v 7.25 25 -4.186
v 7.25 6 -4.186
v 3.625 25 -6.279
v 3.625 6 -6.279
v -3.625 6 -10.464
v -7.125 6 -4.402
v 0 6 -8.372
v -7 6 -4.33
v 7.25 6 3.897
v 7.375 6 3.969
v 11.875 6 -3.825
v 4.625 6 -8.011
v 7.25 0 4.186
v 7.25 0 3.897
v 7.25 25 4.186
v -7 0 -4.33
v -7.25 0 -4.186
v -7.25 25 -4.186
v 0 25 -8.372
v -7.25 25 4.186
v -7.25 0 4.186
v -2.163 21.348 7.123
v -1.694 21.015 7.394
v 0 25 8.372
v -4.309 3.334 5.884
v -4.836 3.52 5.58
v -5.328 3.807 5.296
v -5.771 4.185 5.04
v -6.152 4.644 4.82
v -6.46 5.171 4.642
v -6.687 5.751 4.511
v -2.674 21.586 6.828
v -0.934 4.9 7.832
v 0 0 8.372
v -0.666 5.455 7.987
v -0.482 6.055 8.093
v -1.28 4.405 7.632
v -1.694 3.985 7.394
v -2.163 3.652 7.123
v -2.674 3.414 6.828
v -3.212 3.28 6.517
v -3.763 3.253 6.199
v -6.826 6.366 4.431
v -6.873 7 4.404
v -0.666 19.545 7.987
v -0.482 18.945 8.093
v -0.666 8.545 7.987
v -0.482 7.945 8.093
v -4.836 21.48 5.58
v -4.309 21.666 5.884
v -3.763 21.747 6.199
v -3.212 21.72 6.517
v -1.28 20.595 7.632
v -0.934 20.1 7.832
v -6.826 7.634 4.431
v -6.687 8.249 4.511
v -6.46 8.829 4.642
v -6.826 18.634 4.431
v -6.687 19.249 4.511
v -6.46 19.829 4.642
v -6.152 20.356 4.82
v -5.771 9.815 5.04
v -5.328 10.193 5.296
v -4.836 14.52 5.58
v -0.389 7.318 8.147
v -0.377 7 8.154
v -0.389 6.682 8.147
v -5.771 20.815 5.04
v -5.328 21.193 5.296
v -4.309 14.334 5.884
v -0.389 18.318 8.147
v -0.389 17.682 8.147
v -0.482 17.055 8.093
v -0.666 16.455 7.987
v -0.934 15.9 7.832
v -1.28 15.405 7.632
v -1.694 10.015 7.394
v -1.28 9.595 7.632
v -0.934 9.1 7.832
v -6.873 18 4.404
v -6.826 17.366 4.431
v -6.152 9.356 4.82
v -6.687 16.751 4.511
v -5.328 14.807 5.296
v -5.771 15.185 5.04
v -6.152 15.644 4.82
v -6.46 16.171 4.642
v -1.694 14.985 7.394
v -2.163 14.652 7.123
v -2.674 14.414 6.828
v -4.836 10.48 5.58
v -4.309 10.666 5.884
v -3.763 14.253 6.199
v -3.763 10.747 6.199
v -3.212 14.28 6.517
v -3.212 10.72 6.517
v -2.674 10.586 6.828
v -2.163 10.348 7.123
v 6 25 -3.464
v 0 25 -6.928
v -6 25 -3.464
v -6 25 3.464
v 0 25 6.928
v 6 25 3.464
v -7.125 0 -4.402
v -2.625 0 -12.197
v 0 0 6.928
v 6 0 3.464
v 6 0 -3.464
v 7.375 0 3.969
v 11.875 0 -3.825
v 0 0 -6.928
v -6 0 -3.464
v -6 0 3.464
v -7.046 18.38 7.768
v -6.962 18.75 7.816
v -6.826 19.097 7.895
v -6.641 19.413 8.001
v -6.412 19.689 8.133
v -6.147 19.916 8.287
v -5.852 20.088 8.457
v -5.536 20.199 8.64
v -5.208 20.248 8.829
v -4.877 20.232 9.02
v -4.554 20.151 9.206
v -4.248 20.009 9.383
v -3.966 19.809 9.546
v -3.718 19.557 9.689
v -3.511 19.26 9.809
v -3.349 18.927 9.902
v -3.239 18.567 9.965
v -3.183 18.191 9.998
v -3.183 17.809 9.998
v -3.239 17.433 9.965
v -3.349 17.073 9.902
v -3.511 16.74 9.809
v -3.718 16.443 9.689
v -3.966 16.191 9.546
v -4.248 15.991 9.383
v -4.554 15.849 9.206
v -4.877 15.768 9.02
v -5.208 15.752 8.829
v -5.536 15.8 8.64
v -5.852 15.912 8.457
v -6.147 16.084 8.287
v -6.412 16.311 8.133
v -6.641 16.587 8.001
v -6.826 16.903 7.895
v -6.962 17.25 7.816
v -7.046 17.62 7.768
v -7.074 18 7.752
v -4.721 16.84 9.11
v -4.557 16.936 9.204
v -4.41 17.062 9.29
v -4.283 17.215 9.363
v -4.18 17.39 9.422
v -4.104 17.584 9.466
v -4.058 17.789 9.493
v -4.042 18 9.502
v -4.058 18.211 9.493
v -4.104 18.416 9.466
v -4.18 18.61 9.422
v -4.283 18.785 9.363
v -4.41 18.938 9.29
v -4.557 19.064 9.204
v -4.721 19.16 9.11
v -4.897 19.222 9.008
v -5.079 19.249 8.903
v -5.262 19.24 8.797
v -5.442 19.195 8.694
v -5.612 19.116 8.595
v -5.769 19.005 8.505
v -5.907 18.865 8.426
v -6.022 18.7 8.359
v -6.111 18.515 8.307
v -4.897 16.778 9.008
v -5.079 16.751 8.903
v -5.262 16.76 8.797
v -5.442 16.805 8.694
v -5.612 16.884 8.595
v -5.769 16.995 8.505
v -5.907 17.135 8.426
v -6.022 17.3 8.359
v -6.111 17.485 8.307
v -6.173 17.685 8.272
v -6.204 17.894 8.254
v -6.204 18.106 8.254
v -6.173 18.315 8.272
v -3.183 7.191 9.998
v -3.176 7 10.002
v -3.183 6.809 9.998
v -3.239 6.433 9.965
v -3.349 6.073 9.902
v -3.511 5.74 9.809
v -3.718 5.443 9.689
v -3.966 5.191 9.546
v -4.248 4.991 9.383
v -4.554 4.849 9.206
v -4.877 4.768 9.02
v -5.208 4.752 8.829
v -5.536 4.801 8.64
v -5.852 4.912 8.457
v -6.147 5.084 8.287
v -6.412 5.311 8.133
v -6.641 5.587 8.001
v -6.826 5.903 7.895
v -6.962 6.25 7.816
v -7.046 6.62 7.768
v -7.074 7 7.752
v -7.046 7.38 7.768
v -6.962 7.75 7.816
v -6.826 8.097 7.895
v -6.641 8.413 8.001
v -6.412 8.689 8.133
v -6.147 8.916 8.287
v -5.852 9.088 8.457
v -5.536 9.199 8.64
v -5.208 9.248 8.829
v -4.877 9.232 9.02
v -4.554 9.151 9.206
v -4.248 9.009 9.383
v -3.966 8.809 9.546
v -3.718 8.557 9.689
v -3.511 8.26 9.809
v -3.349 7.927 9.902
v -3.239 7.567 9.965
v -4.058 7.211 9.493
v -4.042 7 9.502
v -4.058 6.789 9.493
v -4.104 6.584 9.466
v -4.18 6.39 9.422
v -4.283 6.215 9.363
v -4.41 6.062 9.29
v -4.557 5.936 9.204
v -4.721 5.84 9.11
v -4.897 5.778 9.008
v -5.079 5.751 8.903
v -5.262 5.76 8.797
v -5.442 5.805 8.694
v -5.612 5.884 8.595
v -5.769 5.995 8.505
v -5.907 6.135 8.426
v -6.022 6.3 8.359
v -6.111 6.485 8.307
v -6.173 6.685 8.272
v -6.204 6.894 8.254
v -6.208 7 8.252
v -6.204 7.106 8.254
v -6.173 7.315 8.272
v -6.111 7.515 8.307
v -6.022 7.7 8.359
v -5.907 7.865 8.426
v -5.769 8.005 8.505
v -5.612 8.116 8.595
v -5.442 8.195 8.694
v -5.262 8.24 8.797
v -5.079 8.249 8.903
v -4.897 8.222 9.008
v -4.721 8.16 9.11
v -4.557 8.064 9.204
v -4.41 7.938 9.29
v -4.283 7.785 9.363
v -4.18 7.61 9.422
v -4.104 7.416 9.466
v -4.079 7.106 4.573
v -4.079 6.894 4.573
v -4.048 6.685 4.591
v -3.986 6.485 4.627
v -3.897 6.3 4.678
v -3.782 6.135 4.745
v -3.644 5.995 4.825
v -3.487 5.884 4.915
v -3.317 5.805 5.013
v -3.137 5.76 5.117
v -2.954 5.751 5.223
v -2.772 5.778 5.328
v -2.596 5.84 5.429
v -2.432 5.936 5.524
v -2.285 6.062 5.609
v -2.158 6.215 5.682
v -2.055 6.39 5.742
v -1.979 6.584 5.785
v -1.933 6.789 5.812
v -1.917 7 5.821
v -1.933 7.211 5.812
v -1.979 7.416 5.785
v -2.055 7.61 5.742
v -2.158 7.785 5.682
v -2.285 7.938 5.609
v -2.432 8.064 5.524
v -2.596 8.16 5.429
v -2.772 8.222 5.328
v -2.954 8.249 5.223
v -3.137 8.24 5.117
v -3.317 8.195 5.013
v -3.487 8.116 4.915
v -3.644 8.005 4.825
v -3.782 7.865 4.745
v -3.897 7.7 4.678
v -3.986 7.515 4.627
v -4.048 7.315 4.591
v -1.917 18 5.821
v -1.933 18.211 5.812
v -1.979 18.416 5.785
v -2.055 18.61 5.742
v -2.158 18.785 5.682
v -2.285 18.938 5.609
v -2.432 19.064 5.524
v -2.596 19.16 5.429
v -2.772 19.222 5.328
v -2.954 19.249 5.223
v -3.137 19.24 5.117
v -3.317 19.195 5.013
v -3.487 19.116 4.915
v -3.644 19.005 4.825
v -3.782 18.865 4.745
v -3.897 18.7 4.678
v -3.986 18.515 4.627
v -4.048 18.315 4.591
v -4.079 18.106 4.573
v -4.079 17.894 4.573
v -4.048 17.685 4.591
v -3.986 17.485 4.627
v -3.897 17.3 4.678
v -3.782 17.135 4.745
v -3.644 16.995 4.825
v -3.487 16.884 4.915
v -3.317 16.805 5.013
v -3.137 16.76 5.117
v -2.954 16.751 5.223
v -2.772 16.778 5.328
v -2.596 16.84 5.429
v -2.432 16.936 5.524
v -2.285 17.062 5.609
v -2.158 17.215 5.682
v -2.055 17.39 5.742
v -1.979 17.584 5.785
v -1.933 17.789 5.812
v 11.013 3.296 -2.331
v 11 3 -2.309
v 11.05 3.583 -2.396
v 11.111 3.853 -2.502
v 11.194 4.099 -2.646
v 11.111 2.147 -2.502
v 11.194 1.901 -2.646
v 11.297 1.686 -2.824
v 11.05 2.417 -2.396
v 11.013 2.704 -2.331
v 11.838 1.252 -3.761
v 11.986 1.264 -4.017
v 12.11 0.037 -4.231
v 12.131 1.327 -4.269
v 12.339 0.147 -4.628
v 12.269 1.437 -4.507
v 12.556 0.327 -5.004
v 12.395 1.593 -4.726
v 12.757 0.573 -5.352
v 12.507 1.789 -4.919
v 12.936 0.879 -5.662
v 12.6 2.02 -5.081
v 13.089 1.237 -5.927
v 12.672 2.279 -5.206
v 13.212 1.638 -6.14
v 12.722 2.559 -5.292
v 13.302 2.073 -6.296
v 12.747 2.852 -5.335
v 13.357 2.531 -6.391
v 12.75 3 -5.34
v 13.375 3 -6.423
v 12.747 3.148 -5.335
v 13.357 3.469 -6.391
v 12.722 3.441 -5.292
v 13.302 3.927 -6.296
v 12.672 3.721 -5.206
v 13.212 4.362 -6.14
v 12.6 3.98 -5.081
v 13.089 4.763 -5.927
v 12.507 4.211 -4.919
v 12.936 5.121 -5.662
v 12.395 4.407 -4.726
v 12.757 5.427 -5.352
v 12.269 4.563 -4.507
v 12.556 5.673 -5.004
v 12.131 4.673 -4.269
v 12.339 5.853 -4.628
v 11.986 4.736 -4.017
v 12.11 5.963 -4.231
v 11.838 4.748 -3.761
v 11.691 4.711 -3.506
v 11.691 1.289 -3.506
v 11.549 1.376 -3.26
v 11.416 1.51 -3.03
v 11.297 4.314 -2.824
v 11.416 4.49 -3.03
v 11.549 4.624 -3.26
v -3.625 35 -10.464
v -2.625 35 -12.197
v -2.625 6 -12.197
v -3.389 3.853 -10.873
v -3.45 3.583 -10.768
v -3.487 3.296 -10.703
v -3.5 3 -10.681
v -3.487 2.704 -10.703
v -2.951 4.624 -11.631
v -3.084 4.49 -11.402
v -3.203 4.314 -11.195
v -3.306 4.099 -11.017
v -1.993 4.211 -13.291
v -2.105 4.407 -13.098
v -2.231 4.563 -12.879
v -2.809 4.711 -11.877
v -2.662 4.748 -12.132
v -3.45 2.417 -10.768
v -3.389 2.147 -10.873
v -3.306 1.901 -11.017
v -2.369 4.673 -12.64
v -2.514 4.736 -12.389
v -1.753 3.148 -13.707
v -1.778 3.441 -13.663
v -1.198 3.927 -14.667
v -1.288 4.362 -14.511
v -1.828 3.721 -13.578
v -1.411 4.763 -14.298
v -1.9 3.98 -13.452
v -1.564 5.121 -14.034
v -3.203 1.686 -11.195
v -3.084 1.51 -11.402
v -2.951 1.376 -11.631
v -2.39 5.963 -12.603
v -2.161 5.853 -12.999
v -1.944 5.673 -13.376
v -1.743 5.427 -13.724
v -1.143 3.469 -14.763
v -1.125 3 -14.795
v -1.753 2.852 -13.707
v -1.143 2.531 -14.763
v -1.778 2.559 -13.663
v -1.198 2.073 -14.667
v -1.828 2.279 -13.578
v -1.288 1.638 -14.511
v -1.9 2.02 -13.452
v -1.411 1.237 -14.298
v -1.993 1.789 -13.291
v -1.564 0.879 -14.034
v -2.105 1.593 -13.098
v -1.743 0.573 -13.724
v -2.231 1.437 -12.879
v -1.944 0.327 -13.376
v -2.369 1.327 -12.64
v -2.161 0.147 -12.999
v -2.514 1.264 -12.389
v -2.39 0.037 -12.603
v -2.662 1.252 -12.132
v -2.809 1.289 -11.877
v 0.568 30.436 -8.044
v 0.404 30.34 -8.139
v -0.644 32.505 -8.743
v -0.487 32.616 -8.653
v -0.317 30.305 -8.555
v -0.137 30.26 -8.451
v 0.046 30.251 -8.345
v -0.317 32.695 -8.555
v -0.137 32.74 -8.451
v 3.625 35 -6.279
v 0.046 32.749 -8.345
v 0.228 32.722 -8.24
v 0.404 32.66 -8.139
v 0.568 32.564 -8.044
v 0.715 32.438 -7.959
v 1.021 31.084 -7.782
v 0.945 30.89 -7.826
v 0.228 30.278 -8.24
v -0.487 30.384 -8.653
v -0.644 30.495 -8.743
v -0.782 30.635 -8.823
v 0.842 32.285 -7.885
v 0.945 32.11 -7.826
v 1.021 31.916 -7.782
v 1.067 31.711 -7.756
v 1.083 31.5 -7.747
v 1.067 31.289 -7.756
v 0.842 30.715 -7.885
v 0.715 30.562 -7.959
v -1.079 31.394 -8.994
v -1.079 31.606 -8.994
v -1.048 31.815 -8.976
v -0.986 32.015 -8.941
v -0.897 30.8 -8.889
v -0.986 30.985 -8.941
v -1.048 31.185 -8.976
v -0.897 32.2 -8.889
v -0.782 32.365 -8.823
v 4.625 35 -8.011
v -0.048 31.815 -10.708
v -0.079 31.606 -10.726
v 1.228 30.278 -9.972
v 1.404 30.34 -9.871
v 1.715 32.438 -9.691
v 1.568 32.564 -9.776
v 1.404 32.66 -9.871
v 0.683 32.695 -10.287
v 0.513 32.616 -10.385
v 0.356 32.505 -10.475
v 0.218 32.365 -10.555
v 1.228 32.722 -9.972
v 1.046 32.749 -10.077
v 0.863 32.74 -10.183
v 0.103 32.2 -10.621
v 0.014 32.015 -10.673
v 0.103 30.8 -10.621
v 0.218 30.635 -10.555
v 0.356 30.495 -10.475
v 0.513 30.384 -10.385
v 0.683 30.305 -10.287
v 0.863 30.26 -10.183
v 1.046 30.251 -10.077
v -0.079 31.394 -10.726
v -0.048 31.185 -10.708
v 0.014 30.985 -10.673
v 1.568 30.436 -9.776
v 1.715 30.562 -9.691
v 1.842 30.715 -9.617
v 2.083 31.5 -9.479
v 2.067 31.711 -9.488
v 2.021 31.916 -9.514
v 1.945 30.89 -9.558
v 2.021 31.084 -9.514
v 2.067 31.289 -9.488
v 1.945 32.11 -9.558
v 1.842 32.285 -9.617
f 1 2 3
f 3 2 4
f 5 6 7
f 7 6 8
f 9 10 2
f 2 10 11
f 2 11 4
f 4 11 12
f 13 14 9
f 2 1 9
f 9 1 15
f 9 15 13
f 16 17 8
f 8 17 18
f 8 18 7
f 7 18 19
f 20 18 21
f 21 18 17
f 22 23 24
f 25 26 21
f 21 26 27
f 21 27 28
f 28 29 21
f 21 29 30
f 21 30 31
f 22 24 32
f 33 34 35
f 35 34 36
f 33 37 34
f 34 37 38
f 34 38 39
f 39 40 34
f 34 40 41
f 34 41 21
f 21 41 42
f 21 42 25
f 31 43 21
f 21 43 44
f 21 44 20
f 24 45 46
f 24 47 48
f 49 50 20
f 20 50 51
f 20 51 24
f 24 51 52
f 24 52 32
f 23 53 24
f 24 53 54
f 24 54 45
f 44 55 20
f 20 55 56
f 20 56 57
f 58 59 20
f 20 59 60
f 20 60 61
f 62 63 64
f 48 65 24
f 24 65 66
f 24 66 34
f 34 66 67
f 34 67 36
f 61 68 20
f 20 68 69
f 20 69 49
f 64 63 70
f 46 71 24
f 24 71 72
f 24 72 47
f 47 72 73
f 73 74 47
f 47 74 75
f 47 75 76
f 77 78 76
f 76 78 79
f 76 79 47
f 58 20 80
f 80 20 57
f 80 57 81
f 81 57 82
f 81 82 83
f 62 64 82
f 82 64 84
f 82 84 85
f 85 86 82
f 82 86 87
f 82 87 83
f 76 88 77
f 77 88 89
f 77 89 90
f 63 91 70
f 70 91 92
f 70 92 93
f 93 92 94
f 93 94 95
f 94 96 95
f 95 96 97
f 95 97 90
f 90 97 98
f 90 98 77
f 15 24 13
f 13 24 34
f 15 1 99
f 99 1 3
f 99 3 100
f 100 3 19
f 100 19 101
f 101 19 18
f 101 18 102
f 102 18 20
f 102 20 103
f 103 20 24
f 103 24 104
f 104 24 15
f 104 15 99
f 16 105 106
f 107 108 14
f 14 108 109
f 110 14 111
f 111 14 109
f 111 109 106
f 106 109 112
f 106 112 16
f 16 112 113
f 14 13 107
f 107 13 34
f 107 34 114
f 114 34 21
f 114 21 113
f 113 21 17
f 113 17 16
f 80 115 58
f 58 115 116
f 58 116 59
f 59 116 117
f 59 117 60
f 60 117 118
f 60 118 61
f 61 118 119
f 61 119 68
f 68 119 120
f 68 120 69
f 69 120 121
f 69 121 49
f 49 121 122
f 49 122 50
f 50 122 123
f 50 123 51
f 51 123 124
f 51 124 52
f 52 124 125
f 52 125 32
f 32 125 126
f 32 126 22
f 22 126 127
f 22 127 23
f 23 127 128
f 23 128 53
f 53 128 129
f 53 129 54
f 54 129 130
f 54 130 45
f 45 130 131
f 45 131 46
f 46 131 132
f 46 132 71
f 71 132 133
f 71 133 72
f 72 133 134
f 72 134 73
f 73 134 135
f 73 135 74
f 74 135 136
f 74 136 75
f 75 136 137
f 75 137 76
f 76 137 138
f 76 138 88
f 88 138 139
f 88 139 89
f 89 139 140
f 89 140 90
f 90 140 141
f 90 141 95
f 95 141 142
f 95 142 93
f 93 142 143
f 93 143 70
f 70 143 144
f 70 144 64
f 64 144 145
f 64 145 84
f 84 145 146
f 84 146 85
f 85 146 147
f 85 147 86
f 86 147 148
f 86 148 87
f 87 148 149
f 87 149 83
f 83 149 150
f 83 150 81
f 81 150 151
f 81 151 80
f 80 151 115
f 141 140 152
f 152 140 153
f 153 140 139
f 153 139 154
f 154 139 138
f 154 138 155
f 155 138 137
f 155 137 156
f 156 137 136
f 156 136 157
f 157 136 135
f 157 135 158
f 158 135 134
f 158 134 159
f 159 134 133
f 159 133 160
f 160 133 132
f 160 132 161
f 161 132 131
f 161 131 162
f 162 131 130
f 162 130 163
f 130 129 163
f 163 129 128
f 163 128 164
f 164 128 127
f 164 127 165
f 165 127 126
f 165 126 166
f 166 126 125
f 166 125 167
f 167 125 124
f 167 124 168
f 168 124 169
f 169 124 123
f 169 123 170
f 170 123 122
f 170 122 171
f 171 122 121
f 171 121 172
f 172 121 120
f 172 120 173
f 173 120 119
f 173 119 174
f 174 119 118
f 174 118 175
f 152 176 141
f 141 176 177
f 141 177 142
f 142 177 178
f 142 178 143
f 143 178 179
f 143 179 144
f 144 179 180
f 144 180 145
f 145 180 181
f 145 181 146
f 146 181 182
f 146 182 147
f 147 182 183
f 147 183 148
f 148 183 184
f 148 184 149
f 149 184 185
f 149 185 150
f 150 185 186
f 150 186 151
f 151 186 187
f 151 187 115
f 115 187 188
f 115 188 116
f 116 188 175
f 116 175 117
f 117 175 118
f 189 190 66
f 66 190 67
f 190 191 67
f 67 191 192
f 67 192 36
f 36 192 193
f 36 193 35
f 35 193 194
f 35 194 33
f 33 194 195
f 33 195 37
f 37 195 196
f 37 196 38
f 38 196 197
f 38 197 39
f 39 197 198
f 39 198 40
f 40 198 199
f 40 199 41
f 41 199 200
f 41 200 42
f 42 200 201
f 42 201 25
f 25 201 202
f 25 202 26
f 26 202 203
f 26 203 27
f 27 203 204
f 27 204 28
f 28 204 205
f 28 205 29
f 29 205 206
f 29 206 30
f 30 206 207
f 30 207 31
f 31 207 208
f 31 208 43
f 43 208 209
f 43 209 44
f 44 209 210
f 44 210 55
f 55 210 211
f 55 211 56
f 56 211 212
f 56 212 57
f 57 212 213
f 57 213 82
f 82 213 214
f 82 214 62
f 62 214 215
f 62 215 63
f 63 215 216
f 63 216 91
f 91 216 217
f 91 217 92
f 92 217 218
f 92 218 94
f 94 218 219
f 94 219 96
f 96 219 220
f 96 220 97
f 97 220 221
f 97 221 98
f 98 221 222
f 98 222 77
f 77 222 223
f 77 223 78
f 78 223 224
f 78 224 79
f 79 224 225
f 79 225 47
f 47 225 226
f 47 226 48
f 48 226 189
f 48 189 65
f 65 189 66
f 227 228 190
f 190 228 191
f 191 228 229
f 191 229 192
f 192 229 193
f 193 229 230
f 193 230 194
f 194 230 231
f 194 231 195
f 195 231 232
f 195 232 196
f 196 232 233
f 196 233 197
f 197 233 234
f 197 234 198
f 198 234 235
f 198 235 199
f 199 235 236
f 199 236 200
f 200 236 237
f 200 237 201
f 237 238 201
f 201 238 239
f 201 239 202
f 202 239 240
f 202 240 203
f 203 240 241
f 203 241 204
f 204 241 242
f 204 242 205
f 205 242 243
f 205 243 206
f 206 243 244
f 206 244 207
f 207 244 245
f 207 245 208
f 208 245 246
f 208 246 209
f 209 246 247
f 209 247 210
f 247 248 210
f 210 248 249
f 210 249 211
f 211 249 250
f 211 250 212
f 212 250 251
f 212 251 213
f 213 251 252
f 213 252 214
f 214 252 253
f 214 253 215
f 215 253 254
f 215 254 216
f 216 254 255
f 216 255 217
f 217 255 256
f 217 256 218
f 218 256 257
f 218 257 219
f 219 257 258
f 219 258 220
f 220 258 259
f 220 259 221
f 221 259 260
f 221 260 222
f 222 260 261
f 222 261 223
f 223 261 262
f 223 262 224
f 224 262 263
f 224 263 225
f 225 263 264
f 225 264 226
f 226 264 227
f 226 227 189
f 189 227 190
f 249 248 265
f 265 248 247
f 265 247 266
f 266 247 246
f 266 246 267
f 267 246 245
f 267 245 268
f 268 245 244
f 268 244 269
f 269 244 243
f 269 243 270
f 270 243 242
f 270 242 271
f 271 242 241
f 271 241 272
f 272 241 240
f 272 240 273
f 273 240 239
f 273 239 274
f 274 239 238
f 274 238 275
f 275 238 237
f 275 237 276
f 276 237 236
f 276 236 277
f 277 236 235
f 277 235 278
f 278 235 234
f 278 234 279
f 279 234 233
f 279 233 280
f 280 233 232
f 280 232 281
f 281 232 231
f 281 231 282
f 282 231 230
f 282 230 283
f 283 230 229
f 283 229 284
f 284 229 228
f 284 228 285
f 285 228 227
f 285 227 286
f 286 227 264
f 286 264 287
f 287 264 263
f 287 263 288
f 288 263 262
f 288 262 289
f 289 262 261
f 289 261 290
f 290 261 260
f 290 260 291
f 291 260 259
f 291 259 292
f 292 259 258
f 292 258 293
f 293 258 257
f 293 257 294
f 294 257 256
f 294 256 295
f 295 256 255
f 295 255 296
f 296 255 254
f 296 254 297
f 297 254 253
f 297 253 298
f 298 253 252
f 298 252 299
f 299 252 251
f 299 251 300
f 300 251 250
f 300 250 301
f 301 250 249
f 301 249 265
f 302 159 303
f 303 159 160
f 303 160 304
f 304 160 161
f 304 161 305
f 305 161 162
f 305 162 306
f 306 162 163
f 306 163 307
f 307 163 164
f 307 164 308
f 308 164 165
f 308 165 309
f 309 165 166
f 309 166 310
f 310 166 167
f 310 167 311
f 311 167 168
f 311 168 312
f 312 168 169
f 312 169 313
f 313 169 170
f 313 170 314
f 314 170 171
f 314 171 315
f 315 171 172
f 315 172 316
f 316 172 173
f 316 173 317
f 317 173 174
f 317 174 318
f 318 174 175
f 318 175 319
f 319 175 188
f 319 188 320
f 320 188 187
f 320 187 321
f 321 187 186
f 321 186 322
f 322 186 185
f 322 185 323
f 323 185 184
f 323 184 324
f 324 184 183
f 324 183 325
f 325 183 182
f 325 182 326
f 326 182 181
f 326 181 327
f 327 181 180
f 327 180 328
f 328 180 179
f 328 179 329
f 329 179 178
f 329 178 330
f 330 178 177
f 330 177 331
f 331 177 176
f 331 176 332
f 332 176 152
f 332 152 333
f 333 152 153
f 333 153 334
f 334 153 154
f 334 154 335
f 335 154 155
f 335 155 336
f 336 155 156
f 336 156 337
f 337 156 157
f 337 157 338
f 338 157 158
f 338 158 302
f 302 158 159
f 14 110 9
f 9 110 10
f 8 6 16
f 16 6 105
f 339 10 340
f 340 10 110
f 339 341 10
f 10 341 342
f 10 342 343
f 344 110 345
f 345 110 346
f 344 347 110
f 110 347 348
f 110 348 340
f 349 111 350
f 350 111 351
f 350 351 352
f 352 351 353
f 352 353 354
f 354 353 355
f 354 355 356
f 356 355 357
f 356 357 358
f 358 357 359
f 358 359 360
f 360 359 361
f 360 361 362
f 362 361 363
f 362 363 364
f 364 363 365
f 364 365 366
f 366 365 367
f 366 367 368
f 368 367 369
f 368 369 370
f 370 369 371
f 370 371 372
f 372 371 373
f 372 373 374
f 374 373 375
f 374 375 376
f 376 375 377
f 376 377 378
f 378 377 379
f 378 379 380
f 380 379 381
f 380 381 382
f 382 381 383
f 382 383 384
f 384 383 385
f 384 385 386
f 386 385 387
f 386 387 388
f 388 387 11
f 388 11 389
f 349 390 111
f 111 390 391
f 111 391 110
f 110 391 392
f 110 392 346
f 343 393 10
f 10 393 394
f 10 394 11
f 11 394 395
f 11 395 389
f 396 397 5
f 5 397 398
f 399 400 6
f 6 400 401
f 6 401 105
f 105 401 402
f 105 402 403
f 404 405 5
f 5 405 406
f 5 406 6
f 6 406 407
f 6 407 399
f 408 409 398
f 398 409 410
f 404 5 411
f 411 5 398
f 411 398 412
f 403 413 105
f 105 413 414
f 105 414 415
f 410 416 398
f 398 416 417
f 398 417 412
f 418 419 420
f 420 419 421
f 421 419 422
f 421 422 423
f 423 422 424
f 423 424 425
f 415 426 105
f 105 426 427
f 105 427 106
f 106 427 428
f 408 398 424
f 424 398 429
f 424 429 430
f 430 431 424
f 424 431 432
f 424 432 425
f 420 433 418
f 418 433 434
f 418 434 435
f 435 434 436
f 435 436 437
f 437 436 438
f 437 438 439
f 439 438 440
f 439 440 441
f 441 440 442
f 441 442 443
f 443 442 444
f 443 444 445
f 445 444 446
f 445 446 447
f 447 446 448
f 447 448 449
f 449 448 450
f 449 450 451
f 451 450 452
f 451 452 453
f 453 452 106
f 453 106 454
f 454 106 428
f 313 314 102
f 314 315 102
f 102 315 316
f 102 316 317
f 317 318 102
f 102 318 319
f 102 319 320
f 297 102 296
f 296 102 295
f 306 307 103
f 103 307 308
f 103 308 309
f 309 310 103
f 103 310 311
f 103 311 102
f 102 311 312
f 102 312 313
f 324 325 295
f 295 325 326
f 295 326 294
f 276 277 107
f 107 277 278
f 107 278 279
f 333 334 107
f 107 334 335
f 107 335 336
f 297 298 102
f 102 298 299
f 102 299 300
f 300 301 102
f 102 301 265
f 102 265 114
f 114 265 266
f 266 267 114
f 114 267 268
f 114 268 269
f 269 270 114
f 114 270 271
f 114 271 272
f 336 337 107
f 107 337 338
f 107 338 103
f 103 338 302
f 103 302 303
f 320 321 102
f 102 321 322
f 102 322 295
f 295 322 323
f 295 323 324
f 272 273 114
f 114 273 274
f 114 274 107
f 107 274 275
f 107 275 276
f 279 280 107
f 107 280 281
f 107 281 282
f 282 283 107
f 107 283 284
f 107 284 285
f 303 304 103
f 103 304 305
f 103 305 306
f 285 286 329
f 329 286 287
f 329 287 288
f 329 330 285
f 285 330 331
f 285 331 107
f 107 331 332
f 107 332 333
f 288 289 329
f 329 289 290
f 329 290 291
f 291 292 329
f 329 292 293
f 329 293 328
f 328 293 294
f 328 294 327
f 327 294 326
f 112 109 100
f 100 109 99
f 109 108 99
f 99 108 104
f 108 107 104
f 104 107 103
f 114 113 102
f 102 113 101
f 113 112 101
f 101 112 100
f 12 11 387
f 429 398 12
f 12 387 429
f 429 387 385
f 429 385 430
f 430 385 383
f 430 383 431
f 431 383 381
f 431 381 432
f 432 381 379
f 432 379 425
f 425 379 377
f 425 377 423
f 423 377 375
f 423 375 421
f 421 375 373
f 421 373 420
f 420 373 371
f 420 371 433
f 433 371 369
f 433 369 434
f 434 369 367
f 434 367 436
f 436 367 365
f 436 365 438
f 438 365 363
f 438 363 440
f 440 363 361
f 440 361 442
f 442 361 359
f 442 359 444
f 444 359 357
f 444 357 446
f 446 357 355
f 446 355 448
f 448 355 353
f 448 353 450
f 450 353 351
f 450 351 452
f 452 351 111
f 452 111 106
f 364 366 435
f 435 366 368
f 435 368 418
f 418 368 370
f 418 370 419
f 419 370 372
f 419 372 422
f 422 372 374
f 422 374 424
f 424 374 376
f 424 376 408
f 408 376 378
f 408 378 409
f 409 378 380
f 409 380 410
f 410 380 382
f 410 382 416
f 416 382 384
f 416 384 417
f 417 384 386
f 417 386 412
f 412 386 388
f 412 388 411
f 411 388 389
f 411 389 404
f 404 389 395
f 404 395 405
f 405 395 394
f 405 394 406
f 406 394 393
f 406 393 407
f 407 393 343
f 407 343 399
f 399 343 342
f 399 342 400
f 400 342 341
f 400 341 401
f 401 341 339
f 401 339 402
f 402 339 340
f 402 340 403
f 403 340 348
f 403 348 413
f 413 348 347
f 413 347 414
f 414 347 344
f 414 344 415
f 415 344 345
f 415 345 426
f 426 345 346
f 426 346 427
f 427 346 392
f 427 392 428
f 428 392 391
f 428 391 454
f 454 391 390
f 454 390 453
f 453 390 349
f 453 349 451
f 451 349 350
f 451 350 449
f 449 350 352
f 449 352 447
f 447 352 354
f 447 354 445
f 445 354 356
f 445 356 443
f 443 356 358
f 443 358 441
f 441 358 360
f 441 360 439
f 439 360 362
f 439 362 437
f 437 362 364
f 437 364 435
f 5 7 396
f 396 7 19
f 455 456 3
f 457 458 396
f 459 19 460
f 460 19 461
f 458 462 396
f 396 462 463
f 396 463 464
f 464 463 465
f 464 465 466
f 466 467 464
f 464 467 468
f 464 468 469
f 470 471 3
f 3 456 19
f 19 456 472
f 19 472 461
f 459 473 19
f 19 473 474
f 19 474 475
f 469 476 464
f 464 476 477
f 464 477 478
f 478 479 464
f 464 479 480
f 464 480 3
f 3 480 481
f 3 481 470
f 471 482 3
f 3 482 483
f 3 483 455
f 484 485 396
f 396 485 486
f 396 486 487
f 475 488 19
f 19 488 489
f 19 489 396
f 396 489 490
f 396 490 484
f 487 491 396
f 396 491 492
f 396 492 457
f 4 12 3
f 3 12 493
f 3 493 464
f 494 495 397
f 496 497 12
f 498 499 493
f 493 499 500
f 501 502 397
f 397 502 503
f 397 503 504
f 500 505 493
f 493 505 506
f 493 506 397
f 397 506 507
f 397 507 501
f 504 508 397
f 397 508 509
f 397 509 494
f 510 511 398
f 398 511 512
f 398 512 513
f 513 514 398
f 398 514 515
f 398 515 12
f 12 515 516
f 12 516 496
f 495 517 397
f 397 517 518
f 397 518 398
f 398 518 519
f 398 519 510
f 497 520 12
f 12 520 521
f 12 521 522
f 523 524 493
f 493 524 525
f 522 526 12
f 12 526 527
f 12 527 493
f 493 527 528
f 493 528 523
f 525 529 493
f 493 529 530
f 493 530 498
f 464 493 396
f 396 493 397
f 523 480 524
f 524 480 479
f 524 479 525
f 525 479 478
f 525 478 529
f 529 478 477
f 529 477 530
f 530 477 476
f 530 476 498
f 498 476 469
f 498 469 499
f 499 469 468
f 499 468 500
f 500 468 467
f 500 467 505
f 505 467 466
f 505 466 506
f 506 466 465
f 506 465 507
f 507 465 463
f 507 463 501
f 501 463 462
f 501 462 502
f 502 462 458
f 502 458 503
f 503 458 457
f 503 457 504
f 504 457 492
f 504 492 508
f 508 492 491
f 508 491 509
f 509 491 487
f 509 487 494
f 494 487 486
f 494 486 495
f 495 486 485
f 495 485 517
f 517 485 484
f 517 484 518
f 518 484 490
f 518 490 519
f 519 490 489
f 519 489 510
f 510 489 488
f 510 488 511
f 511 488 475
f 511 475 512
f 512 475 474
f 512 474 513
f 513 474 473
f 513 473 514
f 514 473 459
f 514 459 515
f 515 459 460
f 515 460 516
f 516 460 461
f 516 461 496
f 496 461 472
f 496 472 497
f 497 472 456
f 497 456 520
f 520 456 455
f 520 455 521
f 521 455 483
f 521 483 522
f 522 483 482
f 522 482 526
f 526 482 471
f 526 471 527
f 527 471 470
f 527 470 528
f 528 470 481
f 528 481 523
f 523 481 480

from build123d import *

# Parameters (mm, degrees)
RESSALTO_EXTRUS_O1_DEPTH      = 25
ESBO_O3_R                     = 2.25
RESSALTO_EXTRUS_O2_DEPTH      = 3
ESBO_O6_R                     = 1.25
CORTE_EXTRUS_O2_DEPTH         = 10
RESSALTO_EXTRUS_O3_DEPTH      = 5
RESSALTO_EXTRUS_O3_DEPTH_BACK = 7
ESBO_O8_W                     = 16.743157806
ESBO_O8_H                     = 6
CORTE_EXTRUS_O1_DEPTH         = 32.980788504
FILETE2_R                     = 3
ESBO_O10_R                    = 1.75
CORTE_EXTRUS_O3_DEPTH         = 36.379050234
RESSALTO_EXTRUS_O4_DEPTH      = 29
ESBO_O12_R                    = 1.25
CORTE_EXTRUS_O4_DEPTH         = 41.103846452


with BuildPart() as part:
    # Esboço1 → Ressalto-extrusão1 (new body)
    with BuildSketch(Plane(origin=(0, 0, 0), x_dir=(1, 0, 0), z_dir=(0, 1, 0))):
        Polygon((7.25, 4.185789452), (0, 8.371578903), (-7.25, 4.185789452), (-7.25, -4.185789452), (0, -8.371578903), (7.25, -4.185789452), align=None)
    extrude(amount=RESSALTO_EXTRUS_O1_DEPTH)

    # Esboço3 → Ressalto-extrusão2 (add)
    with BuildSketch(Plane(origin=(-3.625, 0, 6.278684177), x_dir=(0.8660254037844387, 0, 0.4999999999999999), z_dir=(-0.49999999999999994, 0, 0.8660254037844388))):
        with Locations(Location((0, 7, 0), (0, 0, 180))):
            Circle(ESBO_O3_R)
        with Locations(Location((0, 18, 0), (0, 0, 180))):
            Circle(ESBO_O3_R)
    extrude(amount=RESSALTO_EXTRUS_O2_DEPTH)

    # Esboço4 → Revolução1 (revolve)
    with BuildSketch(Plane(origin=(0, 18, 0), x_dir=(1, 0, 0), z_dir=(0, 1, 0))):
        Polygon((-7.073557159, -7.751760389), (-6.872595264, -4.403684177), (-5.573557159, -5.153684177), align=None)
    revolve(axis=Axis((-2.565266445, 18, 4.443171818), (-0.5000000000000001, 0, 0.8660254037844386)))

    # Esboço5 → Revolução2 (revolve)
    with BuildSketch(Plane(origin=(0, 7, 0), x_dir=(-1, 0, 0), z_dir=(0, -1, 0)), mode=Mode.PRIVATE) as revolu_o2_sk:
        Polygon((7.073557159, -7.751760389), (5.573557159, -5.153684177), (6.872595264, -4.403684177), align=None)
    revolve(revolu_o2_sk.sketch.rotate(Axis((-5.573557159, 7, 9.653684177), (0.4999999999999998, 0, -0.8660254037844388)), 180), axis=Axis((-5.573557159, 7, 9.653684177), (0.4999999999999998, 0, -0.8660254037844388)))

    # Esboço6 → Corte-extrusão2 (cut)
    with BuildSketch(Plane(origin=(-5.125, 0, 8.876760389), x_dir=(0.8660254037844386, 0, 0.5), z_dir=(-0.5000000000000001, 0, 0.8660254037844387))):
        with Locations((0, 18)):
            Circle(ESBO_O6_R)
        with Locations(Location((0, 7, 0), (0, 0, 180))):
            Circle(ESBO_O6_R)
    extrude(amount=-CORTE_EXTRUS_O2_DEPTH, mode=Mode.SUBTRACT)

    # Esboço8 → Ressalto-extrusão3 (add, two sides: drawn at the far end of the back side and taken through both)
    with BuildSketch(Plane(origin=(3.625, 0, -6.278684177), x_dir=(-0.8660254037844386, 0, -0.4999999999999999), z_dir=(0.49999999999999994, 0, -0.8660254037844387)).offset(-RESSALTO_EXTRUS_O3_DEPTH_BACK)):
        with Locations((0, 3)):
            Rectangle(ESBO_O8_W, ESBO_O8_H)
    extrude(amount=RESSALTO_EXTRUS_O3_DEPTH + RESSALTO_EXTRUS_O3_DEPTH_BACK)

    # Esboço2 → Corte-extrusão1 (cut, through all)
    with BuildSketch(Plane(origin=(0, 25, 0), x_dir=(1, 0, 0), z_dir=(0, 1, 0))):
        Polygon((0, 6.92820323), (-6, 3.464101615), (-6, -3.464101615), (0, -6.92820323), (6, -3.464101615), (6, 3.464101615), align=None)
    extrude(amount=-CORTE_EXTRUS_O1_DEPTH, mode=Mode.SUBTRACT)

    # Filete2
    filete2_edges = [part.edges().sort_by_distance(p)[0] for p in [
        (6.125, 0, -10.608811196),
        (6.125, 6, -10.608811196),
    ]]
    fillet(filete2_edges, radius=FILETE2_R - 0.0001)  # a hair under: the kernel refuses the full size

    # Esboço10 → Corte-extrusão3 (cut, through all)
    with BuildSketch(Plane(origin=(-7.25, 0, -4.185789452), x_dir=(-0.5000000000000001, 0, 0.8660254037844386), z_dir=(-0.8660254037844386, 0, -0.5000000000000001))):
        with Locations((-9.25, 3)):
            Circle(ESBO_O10_R)
    extrude(amount=-CORTE_EXTRUS_O3_DEPTH, mode=Mode.SUBTRACT)

    # Esboço11 → Ressalto-extrusão4 (add)
    with BuildSketch(Plane(origin=(0, 6, 0), x_dir=(1, 0, 0), z_dir=(0, 1, 0))):
        Polygon((-2.625, 12.196524437), (4.625, 8.010734985), (3.625, 6.278684177), (-3.625, 10.464473629), align=None)
    extrude(amount=RESSALTO_EXTRUS_O4_DEPTH)

    # Esboço12 → Corte-extrusão4 (cut, through all)
    with BuildSketch(Plane(origin=(3.625, 0, -6.278684177), x_dir=(0.8660254037844386, 0, 0.4999999999999999), z_dir=(-0.49999999999999994, 0, 0.8660254037844387))):
        with Locations((-4.185789452, 31.5)):
            Circle(ESBO_O12_R)
    extrude(amount=-CORTE_EXTRUS_O4_DEPTH, mode=Mode.SUBTRACT)


solid = part.part
